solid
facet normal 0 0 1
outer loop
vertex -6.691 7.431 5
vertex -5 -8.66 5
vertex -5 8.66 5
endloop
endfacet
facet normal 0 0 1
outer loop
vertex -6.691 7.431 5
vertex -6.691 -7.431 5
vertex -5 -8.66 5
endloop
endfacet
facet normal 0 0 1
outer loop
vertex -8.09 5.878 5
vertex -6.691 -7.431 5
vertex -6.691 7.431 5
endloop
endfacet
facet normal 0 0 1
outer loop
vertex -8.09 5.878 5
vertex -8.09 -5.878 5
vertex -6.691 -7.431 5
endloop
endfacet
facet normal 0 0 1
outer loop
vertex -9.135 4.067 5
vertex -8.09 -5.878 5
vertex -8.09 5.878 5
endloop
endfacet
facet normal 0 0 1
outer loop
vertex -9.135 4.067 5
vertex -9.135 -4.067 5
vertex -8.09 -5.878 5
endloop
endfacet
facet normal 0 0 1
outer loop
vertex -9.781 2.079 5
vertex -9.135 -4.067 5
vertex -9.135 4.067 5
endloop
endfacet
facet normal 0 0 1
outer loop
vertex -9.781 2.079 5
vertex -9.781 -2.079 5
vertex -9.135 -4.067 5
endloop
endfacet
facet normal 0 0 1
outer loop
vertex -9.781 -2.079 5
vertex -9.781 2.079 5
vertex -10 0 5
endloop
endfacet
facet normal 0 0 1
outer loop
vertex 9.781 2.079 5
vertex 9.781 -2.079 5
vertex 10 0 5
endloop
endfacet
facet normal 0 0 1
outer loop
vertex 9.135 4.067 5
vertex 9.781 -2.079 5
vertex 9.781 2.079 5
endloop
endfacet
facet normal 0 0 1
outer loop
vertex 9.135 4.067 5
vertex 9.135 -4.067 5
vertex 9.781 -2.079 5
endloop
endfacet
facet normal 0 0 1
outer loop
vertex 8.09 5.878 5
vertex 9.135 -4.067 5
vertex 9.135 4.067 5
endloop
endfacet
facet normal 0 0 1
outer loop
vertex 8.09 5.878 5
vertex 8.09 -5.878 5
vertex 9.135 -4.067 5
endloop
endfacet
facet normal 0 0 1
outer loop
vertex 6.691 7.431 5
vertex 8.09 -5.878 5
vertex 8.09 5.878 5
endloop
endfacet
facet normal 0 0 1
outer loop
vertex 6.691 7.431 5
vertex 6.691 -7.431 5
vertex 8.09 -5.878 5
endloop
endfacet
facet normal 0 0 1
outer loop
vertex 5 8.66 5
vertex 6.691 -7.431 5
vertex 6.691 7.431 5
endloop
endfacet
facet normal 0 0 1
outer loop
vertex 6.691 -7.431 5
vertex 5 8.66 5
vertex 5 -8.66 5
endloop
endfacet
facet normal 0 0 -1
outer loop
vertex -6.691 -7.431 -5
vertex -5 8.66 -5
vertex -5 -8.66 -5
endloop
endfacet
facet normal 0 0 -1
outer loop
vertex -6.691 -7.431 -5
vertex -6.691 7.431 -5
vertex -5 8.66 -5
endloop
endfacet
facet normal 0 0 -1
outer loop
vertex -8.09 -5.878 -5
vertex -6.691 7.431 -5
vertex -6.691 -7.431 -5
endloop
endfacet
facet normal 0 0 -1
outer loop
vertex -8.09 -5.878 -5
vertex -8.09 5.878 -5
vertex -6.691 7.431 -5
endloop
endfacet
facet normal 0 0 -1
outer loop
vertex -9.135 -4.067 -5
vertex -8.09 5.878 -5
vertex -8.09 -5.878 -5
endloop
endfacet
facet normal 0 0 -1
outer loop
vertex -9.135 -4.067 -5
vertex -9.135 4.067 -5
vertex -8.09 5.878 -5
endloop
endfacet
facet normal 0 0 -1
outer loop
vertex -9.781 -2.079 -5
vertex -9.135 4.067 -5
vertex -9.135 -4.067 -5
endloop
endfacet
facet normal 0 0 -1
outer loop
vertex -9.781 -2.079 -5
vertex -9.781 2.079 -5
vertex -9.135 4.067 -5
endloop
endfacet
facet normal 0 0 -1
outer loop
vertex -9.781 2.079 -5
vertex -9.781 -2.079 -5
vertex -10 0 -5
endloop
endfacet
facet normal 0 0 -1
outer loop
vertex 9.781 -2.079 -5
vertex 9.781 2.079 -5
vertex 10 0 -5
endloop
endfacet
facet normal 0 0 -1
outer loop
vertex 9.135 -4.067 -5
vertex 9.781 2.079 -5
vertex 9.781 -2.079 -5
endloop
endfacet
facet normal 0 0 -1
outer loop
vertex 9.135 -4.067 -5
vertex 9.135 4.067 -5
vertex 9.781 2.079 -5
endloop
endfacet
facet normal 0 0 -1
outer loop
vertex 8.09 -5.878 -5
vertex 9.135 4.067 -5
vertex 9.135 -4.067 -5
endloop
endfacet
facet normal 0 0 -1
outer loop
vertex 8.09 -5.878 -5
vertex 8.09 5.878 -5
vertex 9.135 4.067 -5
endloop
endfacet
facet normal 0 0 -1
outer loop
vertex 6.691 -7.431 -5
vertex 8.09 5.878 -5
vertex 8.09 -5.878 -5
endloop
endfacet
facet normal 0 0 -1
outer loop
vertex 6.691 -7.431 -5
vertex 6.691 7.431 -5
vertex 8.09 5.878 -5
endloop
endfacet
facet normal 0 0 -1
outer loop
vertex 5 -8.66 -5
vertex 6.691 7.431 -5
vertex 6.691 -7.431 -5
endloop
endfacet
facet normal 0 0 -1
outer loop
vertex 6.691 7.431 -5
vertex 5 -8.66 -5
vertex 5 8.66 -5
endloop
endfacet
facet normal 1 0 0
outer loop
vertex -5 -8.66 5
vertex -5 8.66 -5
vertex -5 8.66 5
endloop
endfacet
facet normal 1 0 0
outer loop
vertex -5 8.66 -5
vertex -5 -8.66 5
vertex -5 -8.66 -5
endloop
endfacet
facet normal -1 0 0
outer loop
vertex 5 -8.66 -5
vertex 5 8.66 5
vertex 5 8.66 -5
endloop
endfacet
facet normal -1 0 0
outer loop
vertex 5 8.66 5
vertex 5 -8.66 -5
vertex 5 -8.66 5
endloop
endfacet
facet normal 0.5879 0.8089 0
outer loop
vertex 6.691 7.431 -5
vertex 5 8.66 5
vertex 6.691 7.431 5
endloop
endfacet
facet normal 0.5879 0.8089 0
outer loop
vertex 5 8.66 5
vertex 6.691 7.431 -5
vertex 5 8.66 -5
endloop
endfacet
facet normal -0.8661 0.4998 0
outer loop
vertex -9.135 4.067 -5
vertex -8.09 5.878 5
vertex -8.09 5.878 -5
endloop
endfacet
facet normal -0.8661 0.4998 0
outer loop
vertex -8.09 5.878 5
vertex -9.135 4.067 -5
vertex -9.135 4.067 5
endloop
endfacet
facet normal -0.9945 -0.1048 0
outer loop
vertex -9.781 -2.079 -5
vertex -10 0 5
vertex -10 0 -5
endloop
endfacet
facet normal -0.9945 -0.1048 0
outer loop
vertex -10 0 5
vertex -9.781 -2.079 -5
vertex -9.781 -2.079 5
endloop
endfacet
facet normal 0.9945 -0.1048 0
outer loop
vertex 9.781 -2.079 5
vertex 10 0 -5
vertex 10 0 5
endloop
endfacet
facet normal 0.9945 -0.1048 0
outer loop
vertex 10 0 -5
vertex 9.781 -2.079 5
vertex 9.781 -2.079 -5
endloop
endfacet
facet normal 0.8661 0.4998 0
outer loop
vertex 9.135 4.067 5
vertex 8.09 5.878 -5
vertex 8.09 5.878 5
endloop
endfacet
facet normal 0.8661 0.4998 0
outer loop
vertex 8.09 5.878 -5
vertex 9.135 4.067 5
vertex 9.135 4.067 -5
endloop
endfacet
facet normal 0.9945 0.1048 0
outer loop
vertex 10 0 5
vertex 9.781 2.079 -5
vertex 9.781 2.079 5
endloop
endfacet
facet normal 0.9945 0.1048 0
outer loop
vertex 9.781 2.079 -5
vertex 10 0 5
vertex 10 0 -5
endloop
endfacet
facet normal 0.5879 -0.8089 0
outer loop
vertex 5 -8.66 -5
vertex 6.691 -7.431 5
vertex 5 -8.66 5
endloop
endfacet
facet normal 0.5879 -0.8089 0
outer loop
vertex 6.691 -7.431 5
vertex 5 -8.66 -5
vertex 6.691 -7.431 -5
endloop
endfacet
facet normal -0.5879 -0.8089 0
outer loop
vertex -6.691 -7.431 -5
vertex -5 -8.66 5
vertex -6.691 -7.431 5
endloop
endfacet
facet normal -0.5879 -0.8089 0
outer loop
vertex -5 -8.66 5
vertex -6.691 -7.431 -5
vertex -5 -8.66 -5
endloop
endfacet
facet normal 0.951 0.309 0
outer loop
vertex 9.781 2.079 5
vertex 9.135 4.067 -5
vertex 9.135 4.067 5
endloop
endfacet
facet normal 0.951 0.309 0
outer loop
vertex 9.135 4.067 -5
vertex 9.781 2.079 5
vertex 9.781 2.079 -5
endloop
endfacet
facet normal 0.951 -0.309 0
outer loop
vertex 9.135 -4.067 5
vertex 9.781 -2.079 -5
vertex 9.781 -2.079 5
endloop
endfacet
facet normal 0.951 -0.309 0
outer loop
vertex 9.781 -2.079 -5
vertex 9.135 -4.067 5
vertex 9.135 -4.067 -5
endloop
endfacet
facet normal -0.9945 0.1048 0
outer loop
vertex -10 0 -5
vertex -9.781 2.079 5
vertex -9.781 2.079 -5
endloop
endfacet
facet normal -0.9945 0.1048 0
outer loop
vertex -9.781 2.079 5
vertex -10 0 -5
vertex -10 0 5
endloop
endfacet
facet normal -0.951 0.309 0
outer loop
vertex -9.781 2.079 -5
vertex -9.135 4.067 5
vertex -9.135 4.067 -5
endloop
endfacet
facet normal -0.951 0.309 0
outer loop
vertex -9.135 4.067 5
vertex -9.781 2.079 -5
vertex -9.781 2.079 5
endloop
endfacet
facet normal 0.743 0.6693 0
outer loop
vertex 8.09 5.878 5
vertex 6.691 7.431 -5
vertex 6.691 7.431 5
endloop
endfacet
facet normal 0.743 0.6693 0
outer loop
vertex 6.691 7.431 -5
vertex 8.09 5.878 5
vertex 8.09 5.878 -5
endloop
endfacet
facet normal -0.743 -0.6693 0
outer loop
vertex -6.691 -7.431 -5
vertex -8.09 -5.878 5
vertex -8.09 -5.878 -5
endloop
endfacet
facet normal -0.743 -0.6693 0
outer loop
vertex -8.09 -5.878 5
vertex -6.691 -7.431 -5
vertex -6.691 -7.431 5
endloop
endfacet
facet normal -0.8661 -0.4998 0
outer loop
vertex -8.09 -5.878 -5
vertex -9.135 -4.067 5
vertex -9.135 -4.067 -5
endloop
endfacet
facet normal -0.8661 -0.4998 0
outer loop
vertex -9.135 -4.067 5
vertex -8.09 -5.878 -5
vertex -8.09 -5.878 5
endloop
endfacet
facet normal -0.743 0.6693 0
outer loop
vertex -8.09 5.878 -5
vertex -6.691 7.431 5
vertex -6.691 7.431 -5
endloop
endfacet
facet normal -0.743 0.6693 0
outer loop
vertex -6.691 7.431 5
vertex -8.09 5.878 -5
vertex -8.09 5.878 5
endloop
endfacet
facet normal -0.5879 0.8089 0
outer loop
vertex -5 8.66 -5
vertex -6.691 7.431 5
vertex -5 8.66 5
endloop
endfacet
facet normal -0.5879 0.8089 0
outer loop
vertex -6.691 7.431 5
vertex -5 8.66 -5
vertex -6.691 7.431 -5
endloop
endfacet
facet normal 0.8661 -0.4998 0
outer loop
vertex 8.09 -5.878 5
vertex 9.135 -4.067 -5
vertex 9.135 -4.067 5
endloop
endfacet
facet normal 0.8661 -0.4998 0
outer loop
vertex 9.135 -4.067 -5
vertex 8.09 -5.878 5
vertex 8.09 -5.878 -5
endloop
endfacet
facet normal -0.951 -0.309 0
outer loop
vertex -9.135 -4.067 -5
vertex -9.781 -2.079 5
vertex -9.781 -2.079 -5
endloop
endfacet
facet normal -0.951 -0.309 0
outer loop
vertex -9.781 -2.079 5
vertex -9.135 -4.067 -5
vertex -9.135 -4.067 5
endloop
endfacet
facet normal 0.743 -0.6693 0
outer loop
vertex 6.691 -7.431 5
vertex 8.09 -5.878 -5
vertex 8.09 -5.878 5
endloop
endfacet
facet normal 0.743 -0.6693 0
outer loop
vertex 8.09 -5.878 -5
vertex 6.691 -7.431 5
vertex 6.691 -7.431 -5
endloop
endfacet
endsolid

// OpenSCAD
module reconstructed_object() {
    difference() {
        // Base cylinder
        cylinder(h = 10, d1 = 20, d2 = 20, center = true);
        
        // Inner hole
        translate([0, 0, -5])
            cylinder(h = 20, d1 = 5, d2 = 5, center = true);
        
        // Cuts in the side
        for (i = [0, 180]) {
            rotate([0, 0, i])
                translate([-2.5, 0, 0])
                    cube([5, 20, 10], center = true);
        }
    }
}

reconstructed_object();
